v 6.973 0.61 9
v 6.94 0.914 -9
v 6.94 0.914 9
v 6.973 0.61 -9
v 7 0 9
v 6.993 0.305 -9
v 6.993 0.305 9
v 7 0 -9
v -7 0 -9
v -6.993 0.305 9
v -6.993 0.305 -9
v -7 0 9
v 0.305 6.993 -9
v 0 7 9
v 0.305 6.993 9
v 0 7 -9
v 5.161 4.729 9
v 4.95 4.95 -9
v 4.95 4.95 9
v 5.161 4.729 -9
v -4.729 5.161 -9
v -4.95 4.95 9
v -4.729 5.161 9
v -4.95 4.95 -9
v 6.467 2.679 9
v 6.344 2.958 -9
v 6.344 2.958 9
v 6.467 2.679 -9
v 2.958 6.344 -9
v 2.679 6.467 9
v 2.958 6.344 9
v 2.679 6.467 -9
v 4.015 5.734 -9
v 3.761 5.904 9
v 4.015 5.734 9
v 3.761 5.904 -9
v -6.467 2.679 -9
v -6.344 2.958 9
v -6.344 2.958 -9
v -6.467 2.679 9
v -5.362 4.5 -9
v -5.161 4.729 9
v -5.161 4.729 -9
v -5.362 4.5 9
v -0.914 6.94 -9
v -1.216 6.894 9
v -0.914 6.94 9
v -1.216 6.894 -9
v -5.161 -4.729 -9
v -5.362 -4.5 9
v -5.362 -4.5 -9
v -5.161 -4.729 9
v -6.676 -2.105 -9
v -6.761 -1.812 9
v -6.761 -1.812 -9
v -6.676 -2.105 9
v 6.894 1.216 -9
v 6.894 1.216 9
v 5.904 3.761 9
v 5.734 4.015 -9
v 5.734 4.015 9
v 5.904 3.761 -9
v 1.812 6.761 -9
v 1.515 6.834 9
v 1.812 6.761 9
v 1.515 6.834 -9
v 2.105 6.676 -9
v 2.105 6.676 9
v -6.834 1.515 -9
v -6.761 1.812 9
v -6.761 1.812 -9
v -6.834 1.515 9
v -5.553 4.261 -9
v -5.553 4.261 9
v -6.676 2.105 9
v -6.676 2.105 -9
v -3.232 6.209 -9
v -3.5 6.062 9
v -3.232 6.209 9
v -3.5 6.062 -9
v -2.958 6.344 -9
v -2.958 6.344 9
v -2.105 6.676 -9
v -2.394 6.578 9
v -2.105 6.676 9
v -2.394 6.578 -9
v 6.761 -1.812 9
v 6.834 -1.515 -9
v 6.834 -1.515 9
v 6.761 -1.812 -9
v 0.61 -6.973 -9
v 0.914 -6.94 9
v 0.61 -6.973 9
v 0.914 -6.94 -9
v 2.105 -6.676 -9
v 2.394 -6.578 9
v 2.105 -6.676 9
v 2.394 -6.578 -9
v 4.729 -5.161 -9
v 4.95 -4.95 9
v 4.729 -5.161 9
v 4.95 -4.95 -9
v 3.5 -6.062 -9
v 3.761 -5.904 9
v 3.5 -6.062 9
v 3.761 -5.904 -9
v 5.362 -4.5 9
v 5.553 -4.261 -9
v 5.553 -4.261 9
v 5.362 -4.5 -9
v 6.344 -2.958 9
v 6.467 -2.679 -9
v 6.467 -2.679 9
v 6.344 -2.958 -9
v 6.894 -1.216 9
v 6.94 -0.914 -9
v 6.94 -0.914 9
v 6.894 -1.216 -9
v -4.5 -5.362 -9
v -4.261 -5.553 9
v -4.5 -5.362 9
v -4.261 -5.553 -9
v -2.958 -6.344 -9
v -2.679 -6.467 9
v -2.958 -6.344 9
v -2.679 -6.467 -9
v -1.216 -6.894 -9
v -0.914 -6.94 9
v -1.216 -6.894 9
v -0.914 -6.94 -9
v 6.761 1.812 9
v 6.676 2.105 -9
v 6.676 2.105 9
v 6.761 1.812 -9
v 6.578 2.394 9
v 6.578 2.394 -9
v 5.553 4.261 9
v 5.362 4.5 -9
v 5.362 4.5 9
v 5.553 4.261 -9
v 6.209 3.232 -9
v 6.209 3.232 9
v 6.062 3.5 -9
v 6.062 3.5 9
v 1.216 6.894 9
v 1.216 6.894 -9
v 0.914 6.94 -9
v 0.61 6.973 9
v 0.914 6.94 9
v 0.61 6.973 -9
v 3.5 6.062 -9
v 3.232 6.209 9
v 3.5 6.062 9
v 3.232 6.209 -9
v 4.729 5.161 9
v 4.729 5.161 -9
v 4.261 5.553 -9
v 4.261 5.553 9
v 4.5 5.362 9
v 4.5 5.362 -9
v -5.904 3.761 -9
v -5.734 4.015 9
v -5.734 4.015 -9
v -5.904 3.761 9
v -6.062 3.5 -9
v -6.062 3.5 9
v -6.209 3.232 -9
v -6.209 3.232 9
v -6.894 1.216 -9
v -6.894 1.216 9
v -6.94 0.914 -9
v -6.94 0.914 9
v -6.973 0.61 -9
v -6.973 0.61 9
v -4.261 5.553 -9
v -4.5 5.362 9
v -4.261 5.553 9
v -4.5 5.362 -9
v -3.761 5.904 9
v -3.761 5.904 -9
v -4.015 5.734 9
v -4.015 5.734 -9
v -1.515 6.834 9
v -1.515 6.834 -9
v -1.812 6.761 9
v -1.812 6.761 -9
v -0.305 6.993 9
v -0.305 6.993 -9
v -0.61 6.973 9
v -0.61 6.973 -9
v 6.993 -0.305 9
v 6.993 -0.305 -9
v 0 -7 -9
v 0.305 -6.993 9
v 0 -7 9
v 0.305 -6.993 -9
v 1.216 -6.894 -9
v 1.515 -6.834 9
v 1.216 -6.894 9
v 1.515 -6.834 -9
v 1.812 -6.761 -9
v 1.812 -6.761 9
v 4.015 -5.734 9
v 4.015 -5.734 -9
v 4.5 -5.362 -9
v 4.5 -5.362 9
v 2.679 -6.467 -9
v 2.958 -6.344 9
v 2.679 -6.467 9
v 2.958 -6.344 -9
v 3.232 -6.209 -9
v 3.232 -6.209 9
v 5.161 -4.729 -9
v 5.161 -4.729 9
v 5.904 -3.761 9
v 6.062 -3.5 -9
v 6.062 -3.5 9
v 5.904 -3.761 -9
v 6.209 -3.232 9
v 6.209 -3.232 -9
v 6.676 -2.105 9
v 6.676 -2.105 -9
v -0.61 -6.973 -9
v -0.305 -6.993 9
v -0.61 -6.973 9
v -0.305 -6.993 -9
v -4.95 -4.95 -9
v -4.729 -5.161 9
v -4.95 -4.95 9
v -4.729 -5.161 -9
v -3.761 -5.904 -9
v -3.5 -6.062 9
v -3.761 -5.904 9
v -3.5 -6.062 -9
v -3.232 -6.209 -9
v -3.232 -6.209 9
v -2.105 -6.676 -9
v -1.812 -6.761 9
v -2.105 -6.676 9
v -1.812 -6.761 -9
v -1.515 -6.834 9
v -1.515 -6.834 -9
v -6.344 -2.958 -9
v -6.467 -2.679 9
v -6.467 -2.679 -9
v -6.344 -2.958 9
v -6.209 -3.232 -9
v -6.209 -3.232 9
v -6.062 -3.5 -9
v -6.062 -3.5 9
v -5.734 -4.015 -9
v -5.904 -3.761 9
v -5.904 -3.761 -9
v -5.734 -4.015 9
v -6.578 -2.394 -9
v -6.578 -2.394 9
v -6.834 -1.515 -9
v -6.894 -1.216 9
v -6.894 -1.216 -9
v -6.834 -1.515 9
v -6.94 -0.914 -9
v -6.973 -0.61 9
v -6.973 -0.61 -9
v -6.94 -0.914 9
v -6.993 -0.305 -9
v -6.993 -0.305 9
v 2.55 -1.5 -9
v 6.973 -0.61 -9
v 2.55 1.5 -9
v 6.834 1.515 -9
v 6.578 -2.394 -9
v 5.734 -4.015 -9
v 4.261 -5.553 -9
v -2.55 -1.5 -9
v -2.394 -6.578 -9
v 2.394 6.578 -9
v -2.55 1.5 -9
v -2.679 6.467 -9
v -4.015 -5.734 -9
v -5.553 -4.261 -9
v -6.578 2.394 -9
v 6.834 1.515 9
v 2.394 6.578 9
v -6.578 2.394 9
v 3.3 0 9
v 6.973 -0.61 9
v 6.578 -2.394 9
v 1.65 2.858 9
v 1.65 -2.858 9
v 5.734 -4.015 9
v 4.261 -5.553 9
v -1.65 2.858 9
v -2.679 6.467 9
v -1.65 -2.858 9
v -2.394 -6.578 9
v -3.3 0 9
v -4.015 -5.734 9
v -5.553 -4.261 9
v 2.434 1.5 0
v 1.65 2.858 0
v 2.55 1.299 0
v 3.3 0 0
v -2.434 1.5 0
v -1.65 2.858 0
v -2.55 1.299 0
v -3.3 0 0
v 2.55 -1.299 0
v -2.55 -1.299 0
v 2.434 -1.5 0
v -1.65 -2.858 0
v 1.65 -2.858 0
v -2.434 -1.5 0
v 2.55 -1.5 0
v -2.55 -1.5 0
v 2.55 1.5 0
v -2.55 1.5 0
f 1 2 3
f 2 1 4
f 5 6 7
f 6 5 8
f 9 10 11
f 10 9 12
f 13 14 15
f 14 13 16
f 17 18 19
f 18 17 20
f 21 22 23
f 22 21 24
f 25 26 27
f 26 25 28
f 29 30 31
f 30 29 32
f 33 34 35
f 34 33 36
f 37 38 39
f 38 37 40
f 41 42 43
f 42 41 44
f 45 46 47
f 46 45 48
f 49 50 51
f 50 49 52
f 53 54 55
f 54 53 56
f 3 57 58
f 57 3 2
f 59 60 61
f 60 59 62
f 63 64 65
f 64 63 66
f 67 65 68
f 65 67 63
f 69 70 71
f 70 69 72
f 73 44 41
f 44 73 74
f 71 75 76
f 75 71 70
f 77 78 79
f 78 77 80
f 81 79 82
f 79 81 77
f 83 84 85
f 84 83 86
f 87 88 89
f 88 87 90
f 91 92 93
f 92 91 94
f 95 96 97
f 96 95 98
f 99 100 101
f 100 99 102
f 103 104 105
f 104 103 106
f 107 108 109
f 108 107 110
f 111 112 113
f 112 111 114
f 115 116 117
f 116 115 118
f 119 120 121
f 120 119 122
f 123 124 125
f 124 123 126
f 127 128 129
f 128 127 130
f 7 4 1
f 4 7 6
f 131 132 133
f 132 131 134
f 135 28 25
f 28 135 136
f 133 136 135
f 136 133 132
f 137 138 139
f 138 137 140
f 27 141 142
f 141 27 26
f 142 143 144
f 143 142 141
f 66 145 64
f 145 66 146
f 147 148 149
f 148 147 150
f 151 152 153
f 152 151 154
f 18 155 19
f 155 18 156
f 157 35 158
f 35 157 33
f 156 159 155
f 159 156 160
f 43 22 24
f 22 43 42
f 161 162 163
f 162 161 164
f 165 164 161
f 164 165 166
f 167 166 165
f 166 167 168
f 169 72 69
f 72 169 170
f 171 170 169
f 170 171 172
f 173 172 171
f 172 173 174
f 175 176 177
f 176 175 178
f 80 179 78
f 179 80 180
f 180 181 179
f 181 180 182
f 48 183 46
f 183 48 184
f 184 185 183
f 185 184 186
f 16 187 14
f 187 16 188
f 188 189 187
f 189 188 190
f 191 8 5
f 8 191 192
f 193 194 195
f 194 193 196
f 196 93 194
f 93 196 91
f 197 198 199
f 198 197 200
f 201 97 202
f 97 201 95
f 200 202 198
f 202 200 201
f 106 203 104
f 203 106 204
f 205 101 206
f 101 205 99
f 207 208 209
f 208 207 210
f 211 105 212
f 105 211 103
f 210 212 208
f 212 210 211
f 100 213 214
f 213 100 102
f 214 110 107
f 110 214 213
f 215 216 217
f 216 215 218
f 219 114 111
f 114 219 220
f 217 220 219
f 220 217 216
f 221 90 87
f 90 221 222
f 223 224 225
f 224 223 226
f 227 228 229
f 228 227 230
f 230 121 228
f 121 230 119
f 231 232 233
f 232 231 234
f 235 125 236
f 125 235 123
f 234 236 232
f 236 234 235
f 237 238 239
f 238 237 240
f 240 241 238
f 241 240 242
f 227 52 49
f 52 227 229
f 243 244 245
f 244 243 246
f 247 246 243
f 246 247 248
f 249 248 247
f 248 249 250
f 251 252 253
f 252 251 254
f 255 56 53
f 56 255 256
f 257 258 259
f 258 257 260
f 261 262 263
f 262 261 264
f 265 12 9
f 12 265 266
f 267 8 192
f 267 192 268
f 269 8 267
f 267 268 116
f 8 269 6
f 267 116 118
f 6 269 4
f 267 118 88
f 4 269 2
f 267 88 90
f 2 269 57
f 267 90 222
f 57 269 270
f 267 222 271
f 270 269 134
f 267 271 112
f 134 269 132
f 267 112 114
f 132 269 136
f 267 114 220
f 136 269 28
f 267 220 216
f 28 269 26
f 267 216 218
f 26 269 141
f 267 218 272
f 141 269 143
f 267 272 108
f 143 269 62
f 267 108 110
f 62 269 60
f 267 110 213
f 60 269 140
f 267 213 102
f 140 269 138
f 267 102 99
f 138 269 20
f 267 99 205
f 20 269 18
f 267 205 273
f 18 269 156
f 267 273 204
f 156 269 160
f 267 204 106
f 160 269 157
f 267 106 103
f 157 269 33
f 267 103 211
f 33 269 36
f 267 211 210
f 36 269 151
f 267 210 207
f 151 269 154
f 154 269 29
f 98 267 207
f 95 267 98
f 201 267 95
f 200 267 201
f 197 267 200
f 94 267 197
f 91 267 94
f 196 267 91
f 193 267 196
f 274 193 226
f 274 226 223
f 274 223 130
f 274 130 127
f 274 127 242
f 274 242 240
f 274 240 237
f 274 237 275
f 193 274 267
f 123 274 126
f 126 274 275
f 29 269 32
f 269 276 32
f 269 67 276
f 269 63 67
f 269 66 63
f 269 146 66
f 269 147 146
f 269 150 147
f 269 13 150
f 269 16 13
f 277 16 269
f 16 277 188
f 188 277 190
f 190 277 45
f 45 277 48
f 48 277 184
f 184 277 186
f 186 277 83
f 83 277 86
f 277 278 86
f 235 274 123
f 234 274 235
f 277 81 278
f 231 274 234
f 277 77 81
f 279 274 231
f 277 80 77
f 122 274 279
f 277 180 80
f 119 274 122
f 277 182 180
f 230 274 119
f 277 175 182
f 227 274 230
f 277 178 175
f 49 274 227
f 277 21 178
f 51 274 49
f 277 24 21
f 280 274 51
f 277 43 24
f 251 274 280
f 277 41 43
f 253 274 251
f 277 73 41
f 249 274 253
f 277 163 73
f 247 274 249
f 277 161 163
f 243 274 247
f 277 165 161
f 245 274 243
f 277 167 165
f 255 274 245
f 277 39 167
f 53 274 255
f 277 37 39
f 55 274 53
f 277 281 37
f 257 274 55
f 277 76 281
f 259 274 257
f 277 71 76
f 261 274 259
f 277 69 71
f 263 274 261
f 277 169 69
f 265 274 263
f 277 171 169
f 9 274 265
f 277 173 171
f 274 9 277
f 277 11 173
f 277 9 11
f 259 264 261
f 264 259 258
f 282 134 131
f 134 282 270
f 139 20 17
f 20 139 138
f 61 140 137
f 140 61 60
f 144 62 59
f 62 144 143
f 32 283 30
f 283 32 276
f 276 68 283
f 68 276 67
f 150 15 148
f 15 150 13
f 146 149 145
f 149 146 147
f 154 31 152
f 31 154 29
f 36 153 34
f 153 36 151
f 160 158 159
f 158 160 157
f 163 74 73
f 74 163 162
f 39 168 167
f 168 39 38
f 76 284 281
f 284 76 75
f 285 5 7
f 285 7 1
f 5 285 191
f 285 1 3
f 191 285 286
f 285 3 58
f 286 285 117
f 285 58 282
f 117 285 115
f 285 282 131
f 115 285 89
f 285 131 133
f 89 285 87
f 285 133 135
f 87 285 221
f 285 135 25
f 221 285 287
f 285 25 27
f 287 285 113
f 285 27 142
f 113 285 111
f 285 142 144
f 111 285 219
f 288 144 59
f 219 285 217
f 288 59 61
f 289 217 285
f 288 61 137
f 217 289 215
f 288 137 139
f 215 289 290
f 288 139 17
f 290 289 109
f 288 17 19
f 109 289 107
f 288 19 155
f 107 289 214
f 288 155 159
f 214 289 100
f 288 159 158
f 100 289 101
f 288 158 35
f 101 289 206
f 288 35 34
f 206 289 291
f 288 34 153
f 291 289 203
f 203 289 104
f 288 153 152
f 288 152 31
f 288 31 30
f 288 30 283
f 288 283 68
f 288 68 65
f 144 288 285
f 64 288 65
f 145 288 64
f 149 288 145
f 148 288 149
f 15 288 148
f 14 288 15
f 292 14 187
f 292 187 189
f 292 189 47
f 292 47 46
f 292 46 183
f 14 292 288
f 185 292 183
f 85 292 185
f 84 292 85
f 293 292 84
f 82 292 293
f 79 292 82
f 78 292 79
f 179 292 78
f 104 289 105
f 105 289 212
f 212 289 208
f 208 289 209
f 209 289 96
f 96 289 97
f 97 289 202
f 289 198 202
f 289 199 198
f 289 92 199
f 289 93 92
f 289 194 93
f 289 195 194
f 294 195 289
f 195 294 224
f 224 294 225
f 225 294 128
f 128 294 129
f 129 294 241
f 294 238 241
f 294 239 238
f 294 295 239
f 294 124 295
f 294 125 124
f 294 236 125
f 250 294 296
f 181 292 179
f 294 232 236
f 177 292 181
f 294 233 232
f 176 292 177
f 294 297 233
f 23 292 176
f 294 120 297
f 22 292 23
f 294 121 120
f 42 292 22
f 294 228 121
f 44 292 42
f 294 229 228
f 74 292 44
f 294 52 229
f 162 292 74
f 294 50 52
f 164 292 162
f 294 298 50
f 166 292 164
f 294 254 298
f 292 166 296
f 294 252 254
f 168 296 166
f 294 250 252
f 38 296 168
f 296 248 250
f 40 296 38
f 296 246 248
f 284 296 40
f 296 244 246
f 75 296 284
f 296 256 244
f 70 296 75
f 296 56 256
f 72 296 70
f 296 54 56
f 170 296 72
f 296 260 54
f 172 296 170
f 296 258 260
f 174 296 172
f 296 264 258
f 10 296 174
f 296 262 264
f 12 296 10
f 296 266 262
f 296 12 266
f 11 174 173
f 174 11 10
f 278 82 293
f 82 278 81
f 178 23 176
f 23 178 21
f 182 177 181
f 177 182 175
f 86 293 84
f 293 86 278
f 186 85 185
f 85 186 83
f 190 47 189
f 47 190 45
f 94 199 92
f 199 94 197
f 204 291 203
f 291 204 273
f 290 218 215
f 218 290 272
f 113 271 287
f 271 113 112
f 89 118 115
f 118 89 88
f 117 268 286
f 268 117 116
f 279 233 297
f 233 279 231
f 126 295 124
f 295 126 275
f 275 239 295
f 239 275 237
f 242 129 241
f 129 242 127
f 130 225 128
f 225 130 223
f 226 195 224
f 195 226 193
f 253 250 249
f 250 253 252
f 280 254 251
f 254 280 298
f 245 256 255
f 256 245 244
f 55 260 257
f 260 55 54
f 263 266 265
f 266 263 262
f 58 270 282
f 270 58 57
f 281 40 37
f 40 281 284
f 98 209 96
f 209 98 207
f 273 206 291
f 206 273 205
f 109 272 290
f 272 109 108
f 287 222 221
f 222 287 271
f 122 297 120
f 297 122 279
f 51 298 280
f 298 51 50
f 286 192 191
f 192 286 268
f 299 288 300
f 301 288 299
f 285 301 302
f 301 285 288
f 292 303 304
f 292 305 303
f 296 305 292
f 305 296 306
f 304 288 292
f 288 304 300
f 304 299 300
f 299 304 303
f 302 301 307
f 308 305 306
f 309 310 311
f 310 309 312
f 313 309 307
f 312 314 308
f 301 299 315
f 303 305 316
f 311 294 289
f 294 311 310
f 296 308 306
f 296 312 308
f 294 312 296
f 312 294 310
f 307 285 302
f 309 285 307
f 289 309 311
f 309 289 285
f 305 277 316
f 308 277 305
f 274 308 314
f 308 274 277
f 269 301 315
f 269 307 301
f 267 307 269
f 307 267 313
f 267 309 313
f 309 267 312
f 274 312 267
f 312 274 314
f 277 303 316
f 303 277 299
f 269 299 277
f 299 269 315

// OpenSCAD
$fn=144;

shaft_diameter = 6.5;
blind_shaft = 4;

difference() {
    cylinder(18, 7, 7,center = true);
    
    //Blinds shaft
    //translate([-shaft_diameter/2, -shaft_diameter/2, 7])
        cylinder(d=6.6, h=9,$fn=6);
    
    // Motor shaft
   // translate([-6/2, -3.5/2, 0])
     translate([-5.2/2, -3.0/2, -9])
        cube([5.2,3.0,9]);
};
